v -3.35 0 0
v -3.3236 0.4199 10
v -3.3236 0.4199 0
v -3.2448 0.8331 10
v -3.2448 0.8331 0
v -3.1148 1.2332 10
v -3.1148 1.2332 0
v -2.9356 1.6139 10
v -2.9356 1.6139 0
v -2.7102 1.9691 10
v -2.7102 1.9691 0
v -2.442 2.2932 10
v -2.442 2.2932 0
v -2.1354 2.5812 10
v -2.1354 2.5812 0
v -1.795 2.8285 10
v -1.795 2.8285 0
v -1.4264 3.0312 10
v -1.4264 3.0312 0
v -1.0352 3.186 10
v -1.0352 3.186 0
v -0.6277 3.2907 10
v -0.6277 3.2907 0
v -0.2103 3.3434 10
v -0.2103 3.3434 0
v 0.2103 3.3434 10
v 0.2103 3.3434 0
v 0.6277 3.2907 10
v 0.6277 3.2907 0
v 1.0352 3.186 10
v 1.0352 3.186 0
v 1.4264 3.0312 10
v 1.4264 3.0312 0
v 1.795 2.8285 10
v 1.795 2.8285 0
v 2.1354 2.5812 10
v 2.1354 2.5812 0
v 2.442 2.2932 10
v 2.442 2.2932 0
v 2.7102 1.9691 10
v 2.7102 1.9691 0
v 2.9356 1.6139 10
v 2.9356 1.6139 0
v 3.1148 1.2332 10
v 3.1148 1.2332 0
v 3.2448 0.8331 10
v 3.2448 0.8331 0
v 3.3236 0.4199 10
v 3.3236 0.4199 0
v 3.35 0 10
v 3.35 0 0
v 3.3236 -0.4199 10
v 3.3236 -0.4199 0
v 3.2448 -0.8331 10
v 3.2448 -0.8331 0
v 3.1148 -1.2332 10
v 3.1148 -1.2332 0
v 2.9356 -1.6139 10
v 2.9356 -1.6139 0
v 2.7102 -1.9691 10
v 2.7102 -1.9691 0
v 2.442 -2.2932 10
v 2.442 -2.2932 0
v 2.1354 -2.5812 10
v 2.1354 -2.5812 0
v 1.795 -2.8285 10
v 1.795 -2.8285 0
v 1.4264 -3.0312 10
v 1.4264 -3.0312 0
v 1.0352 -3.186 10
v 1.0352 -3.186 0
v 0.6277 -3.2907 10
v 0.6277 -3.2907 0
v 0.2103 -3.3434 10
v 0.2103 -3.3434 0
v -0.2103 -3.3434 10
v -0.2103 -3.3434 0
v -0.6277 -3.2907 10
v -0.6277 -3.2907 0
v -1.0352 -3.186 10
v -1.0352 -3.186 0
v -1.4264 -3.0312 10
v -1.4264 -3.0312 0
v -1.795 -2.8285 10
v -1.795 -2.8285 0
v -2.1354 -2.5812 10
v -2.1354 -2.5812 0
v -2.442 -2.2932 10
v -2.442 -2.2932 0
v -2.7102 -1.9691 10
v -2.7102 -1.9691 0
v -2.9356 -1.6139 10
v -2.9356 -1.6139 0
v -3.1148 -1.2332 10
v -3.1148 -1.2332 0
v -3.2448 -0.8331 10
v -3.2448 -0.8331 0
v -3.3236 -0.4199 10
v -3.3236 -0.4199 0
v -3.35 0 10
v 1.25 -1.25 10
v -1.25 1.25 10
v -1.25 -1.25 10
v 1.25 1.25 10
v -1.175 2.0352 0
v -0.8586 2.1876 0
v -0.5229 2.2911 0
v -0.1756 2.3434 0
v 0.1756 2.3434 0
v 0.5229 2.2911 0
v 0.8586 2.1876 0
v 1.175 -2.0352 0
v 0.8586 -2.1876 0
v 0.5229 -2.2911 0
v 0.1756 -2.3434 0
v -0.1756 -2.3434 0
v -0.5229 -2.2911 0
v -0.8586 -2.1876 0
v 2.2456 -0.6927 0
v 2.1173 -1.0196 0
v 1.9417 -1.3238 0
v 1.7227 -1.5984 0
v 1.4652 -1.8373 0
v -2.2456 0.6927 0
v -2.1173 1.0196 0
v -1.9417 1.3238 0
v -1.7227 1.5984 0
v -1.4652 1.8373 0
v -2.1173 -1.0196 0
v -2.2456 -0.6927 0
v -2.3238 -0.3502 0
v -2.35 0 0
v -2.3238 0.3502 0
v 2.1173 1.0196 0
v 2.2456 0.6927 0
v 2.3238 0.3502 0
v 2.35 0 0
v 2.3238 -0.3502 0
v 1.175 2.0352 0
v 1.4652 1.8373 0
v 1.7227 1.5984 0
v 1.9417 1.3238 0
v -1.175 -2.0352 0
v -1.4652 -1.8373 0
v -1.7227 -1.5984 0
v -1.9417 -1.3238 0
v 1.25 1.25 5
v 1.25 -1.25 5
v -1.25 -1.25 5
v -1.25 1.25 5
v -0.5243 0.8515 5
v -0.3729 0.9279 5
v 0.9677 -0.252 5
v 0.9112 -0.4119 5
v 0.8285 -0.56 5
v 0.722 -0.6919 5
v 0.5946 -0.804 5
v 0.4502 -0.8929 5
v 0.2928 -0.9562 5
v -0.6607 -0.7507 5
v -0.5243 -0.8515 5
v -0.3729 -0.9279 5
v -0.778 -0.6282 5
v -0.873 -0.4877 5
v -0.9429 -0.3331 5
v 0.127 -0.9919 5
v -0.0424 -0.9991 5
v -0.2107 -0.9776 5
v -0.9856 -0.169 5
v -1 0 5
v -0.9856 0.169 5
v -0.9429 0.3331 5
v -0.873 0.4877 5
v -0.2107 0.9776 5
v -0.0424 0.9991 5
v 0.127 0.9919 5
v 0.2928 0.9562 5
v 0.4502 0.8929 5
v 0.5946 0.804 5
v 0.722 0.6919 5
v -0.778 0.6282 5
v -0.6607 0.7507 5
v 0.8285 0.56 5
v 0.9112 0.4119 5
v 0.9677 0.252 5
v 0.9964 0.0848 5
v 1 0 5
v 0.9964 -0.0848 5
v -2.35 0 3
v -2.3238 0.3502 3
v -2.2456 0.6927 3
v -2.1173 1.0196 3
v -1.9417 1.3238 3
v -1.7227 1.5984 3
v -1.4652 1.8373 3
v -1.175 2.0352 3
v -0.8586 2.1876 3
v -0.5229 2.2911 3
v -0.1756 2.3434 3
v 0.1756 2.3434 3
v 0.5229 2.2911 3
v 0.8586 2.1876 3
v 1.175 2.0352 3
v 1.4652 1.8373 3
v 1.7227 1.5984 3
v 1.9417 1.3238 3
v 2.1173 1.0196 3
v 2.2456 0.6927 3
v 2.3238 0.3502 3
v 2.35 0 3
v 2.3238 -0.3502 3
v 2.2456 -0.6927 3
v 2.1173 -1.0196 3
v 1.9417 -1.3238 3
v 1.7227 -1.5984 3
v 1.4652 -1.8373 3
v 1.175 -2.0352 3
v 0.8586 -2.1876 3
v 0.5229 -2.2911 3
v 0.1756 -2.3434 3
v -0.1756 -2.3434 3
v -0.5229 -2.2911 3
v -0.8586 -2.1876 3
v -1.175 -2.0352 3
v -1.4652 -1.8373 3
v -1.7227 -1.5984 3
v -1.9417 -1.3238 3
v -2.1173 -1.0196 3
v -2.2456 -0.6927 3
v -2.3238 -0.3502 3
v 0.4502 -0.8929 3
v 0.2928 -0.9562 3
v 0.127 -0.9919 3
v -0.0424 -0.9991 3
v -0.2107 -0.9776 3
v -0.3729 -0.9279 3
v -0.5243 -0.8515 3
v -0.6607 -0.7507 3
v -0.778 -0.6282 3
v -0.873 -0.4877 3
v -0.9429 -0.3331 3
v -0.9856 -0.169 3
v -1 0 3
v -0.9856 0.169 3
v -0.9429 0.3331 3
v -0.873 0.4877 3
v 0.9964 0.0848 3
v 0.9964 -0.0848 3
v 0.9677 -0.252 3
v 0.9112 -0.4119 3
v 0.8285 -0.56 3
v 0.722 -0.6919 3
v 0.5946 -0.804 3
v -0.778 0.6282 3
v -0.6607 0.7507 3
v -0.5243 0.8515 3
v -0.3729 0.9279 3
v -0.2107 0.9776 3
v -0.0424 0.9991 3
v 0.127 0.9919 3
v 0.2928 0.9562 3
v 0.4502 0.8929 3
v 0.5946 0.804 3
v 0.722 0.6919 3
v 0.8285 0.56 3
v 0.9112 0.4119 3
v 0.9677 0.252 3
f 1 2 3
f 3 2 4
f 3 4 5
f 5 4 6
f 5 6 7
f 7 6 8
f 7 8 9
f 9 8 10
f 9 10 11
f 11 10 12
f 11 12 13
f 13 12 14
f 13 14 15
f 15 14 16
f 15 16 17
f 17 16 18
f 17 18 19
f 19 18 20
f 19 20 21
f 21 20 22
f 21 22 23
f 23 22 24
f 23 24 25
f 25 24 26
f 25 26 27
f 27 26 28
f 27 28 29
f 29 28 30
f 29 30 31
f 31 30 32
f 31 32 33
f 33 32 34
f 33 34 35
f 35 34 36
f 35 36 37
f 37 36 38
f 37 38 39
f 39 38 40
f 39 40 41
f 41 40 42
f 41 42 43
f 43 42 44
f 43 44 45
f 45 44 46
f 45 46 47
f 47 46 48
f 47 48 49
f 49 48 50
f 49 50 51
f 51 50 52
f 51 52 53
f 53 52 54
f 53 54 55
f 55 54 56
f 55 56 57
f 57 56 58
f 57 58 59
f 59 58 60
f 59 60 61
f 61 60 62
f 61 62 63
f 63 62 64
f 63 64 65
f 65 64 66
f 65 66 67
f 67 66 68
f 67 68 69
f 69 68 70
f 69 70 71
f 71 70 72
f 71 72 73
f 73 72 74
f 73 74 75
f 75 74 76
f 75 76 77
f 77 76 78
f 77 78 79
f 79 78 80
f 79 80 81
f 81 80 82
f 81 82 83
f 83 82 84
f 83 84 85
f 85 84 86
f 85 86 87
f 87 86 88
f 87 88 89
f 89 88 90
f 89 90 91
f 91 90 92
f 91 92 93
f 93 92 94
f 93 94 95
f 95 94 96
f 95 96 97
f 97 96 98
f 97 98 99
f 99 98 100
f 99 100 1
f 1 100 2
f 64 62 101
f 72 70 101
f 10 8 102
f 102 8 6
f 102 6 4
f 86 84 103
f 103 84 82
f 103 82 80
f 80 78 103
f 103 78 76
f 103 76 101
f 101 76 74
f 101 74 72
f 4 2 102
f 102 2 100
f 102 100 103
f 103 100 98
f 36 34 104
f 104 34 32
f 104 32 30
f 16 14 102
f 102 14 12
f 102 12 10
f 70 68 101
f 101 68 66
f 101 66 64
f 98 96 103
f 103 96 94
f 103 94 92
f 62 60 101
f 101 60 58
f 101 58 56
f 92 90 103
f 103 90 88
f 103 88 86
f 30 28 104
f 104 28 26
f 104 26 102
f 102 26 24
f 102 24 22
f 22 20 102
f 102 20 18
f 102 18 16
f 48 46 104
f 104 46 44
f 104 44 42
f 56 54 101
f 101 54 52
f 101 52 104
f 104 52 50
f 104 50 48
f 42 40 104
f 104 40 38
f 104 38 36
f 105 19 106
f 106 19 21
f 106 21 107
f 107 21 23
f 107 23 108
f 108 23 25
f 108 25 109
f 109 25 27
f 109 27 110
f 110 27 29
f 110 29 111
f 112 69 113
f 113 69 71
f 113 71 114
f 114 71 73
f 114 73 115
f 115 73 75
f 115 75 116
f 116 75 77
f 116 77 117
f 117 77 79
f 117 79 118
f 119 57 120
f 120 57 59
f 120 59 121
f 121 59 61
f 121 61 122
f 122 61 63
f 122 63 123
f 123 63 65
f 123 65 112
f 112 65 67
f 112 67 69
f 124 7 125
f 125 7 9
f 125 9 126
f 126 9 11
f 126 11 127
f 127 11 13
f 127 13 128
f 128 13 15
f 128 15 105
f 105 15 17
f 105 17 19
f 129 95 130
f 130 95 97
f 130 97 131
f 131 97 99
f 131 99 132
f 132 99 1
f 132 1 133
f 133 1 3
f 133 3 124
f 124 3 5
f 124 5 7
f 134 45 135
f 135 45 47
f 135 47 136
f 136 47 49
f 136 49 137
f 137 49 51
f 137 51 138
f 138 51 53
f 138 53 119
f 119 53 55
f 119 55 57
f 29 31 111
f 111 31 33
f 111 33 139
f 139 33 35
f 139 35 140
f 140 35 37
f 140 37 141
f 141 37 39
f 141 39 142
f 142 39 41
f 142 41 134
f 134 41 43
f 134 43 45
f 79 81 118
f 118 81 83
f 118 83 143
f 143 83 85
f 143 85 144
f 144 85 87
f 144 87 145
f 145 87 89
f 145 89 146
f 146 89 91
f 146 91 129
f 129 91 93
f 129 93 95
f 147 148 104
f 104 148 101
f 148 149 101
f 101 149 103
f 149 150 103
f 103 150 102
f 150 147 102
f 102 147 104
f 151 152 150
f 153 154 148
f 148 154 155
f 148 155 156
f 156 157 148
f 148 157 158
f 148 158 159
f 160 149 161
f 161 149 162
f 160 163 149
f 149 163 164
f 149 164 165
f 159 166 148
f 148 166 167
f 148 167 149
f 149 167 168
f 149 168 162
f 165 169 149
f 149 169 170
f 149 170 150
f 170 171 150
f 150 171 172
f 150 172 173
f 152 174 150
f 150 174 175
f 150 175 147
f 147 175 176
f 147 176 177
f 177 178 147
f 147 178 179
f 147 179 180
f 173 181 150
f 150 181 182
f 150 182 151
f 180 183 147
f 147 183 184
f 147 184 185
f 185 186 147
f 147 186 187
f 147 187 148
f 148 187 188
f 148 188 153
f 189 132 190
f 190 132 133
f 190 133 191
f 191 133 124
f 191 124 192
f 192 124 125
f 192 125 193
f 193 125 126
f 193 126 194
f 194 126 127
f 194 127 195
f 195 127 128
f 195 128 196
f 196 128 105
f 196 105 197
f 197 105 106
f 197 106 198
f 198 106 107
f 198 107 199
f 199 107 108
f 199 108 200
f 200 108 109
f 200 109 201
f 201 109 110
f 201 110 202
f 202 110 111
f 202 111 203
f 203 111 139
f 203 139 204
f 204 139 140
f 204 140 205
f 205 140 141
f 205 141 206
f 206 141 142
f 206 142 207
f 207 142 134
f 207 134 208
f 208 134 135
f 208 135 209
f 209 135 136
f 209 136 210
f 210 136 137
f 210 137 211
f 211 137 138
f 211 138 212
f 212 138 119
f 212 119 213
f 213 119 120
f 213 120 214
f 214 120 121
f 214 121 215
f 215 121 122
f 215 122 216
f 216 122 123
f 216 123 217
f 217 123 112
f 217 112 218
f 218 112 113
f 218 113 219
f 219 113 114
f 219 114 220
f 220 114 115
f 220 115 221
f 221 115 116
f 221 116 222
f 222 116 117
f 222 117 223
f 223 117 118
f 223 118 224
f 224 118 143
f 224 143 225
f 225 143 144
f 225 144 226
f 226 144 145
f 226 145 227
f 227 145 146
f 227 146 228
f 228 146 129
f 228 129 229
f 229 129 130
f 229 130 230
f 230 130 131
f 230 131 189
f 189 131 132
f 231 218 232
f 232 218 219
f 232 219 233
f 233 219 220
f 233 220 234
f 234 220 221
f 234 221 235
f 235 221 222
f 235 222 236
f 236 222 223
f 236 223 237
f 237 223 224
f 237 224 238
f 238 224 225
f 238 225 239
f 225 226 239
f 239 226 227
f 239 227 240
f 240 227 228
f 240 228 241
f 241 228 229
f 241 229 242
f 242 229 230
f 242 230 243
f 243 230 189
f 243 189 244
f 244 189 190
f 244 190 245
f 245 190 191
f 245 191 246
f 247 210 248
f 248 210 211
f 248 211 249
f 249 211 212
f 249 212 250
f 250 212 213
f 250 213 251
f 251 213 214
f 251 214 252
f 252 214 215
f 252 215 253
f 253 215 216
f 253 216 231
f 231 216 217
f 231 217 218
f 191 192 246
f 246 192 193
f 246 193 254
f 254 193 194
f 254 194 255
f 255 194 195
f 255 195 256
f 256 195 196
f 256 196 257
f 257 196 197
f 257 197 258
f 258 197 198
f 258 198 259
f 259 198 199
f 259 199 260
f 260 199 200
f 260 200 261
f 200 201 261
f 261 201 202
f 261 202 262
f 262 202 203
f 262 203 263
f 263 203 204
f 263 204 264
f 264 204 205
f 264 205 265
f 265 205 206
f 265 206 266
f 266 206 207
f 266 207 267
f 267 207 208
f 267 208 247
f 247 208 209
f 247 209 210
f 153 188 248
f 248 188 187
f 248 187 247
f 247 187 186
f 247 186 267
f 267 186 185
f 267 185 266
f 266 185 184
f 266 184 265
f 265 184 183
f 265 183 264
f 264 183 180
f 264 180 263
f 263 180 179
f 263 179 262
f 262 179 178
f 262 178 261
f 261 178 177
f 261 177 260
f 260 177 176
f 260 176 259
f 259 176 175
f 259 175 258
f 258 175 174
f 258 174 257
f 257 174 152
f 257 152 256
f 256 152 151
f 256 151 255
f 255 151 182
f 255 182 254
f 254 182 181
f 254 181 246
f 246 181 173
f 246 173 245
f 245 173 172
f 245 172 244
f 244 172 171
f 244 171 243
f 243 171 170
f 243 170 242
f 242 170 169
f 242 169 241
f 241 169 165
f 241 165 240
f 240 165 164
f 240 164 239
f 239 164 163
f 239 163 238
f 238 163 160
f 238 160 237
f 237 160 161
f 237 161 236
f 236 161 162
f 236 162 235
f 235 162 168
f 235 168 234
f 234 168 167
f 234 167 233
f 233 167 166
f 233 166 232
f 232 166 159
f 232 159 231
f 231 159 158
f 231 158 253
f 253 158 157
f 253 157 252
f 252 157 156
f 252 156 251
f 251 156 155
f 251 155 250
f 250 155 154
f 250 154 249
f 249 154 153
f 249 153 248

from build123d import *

# Parameters (mm, degrees)
SKETCH1_R           = 3.35
BOSS_EXTRUDE1_DEPTH = 10
SKETCH2_W           = 2.5
SKETCH2_H           = 2.5
CUT_EXTRUDE1_DEPTH  = 5
SKETCH3_R           = 2.35
CUT_EXTRUDE2_DEPTH  = 3
SKETCH4_R           = 1
CUT_EXTRUDE3_DEPTH  = 3


with BuildPart() as part:
    # Sketch1 → Boss-Extrude1 (new body)
    with BuildSketch(Plane.XY):
        Circle(SKETCH1_R)
    extrude(amount=BOSS_EXTRUDE1_DEPTH)

    # Sketch2 → Cut-Extrude1 (cut)
    with BuildSketch(Plane.XY.offset(10)):
        Rectangle(SKETCH2_W, SKETCH2_H)
    extrude(amount=-CUT_EXTRUDE1_DEPTH, mode=Mode.SUBTRACT)

    # Sketch3 → Cut-Extrude2 (cut)
    with BuildSketch(Plane(origin=(0, 0, 0), x_dir=(-1, 0, 0), z_dir=(0, 0, -1))):
        Circle(SKETCH3_R)
    extrude(amount=-CUT_EXTRUDE2_DEPTH, mode=Mode.SUBTRACT)

    # Sketch4 → Cut-Extrude3 (cut)
    with BuildSketch(Plane(origin=(0, 0, 3), x_dir=(-1, 0, 0), z_dir=(0, 0, -1))):
        Circle(SKETCH4_R)
    extrude(amount=-CUT_EXTRUDE3_DEPTH, mode=Mode.SUBTRACT)


solid = part.part
